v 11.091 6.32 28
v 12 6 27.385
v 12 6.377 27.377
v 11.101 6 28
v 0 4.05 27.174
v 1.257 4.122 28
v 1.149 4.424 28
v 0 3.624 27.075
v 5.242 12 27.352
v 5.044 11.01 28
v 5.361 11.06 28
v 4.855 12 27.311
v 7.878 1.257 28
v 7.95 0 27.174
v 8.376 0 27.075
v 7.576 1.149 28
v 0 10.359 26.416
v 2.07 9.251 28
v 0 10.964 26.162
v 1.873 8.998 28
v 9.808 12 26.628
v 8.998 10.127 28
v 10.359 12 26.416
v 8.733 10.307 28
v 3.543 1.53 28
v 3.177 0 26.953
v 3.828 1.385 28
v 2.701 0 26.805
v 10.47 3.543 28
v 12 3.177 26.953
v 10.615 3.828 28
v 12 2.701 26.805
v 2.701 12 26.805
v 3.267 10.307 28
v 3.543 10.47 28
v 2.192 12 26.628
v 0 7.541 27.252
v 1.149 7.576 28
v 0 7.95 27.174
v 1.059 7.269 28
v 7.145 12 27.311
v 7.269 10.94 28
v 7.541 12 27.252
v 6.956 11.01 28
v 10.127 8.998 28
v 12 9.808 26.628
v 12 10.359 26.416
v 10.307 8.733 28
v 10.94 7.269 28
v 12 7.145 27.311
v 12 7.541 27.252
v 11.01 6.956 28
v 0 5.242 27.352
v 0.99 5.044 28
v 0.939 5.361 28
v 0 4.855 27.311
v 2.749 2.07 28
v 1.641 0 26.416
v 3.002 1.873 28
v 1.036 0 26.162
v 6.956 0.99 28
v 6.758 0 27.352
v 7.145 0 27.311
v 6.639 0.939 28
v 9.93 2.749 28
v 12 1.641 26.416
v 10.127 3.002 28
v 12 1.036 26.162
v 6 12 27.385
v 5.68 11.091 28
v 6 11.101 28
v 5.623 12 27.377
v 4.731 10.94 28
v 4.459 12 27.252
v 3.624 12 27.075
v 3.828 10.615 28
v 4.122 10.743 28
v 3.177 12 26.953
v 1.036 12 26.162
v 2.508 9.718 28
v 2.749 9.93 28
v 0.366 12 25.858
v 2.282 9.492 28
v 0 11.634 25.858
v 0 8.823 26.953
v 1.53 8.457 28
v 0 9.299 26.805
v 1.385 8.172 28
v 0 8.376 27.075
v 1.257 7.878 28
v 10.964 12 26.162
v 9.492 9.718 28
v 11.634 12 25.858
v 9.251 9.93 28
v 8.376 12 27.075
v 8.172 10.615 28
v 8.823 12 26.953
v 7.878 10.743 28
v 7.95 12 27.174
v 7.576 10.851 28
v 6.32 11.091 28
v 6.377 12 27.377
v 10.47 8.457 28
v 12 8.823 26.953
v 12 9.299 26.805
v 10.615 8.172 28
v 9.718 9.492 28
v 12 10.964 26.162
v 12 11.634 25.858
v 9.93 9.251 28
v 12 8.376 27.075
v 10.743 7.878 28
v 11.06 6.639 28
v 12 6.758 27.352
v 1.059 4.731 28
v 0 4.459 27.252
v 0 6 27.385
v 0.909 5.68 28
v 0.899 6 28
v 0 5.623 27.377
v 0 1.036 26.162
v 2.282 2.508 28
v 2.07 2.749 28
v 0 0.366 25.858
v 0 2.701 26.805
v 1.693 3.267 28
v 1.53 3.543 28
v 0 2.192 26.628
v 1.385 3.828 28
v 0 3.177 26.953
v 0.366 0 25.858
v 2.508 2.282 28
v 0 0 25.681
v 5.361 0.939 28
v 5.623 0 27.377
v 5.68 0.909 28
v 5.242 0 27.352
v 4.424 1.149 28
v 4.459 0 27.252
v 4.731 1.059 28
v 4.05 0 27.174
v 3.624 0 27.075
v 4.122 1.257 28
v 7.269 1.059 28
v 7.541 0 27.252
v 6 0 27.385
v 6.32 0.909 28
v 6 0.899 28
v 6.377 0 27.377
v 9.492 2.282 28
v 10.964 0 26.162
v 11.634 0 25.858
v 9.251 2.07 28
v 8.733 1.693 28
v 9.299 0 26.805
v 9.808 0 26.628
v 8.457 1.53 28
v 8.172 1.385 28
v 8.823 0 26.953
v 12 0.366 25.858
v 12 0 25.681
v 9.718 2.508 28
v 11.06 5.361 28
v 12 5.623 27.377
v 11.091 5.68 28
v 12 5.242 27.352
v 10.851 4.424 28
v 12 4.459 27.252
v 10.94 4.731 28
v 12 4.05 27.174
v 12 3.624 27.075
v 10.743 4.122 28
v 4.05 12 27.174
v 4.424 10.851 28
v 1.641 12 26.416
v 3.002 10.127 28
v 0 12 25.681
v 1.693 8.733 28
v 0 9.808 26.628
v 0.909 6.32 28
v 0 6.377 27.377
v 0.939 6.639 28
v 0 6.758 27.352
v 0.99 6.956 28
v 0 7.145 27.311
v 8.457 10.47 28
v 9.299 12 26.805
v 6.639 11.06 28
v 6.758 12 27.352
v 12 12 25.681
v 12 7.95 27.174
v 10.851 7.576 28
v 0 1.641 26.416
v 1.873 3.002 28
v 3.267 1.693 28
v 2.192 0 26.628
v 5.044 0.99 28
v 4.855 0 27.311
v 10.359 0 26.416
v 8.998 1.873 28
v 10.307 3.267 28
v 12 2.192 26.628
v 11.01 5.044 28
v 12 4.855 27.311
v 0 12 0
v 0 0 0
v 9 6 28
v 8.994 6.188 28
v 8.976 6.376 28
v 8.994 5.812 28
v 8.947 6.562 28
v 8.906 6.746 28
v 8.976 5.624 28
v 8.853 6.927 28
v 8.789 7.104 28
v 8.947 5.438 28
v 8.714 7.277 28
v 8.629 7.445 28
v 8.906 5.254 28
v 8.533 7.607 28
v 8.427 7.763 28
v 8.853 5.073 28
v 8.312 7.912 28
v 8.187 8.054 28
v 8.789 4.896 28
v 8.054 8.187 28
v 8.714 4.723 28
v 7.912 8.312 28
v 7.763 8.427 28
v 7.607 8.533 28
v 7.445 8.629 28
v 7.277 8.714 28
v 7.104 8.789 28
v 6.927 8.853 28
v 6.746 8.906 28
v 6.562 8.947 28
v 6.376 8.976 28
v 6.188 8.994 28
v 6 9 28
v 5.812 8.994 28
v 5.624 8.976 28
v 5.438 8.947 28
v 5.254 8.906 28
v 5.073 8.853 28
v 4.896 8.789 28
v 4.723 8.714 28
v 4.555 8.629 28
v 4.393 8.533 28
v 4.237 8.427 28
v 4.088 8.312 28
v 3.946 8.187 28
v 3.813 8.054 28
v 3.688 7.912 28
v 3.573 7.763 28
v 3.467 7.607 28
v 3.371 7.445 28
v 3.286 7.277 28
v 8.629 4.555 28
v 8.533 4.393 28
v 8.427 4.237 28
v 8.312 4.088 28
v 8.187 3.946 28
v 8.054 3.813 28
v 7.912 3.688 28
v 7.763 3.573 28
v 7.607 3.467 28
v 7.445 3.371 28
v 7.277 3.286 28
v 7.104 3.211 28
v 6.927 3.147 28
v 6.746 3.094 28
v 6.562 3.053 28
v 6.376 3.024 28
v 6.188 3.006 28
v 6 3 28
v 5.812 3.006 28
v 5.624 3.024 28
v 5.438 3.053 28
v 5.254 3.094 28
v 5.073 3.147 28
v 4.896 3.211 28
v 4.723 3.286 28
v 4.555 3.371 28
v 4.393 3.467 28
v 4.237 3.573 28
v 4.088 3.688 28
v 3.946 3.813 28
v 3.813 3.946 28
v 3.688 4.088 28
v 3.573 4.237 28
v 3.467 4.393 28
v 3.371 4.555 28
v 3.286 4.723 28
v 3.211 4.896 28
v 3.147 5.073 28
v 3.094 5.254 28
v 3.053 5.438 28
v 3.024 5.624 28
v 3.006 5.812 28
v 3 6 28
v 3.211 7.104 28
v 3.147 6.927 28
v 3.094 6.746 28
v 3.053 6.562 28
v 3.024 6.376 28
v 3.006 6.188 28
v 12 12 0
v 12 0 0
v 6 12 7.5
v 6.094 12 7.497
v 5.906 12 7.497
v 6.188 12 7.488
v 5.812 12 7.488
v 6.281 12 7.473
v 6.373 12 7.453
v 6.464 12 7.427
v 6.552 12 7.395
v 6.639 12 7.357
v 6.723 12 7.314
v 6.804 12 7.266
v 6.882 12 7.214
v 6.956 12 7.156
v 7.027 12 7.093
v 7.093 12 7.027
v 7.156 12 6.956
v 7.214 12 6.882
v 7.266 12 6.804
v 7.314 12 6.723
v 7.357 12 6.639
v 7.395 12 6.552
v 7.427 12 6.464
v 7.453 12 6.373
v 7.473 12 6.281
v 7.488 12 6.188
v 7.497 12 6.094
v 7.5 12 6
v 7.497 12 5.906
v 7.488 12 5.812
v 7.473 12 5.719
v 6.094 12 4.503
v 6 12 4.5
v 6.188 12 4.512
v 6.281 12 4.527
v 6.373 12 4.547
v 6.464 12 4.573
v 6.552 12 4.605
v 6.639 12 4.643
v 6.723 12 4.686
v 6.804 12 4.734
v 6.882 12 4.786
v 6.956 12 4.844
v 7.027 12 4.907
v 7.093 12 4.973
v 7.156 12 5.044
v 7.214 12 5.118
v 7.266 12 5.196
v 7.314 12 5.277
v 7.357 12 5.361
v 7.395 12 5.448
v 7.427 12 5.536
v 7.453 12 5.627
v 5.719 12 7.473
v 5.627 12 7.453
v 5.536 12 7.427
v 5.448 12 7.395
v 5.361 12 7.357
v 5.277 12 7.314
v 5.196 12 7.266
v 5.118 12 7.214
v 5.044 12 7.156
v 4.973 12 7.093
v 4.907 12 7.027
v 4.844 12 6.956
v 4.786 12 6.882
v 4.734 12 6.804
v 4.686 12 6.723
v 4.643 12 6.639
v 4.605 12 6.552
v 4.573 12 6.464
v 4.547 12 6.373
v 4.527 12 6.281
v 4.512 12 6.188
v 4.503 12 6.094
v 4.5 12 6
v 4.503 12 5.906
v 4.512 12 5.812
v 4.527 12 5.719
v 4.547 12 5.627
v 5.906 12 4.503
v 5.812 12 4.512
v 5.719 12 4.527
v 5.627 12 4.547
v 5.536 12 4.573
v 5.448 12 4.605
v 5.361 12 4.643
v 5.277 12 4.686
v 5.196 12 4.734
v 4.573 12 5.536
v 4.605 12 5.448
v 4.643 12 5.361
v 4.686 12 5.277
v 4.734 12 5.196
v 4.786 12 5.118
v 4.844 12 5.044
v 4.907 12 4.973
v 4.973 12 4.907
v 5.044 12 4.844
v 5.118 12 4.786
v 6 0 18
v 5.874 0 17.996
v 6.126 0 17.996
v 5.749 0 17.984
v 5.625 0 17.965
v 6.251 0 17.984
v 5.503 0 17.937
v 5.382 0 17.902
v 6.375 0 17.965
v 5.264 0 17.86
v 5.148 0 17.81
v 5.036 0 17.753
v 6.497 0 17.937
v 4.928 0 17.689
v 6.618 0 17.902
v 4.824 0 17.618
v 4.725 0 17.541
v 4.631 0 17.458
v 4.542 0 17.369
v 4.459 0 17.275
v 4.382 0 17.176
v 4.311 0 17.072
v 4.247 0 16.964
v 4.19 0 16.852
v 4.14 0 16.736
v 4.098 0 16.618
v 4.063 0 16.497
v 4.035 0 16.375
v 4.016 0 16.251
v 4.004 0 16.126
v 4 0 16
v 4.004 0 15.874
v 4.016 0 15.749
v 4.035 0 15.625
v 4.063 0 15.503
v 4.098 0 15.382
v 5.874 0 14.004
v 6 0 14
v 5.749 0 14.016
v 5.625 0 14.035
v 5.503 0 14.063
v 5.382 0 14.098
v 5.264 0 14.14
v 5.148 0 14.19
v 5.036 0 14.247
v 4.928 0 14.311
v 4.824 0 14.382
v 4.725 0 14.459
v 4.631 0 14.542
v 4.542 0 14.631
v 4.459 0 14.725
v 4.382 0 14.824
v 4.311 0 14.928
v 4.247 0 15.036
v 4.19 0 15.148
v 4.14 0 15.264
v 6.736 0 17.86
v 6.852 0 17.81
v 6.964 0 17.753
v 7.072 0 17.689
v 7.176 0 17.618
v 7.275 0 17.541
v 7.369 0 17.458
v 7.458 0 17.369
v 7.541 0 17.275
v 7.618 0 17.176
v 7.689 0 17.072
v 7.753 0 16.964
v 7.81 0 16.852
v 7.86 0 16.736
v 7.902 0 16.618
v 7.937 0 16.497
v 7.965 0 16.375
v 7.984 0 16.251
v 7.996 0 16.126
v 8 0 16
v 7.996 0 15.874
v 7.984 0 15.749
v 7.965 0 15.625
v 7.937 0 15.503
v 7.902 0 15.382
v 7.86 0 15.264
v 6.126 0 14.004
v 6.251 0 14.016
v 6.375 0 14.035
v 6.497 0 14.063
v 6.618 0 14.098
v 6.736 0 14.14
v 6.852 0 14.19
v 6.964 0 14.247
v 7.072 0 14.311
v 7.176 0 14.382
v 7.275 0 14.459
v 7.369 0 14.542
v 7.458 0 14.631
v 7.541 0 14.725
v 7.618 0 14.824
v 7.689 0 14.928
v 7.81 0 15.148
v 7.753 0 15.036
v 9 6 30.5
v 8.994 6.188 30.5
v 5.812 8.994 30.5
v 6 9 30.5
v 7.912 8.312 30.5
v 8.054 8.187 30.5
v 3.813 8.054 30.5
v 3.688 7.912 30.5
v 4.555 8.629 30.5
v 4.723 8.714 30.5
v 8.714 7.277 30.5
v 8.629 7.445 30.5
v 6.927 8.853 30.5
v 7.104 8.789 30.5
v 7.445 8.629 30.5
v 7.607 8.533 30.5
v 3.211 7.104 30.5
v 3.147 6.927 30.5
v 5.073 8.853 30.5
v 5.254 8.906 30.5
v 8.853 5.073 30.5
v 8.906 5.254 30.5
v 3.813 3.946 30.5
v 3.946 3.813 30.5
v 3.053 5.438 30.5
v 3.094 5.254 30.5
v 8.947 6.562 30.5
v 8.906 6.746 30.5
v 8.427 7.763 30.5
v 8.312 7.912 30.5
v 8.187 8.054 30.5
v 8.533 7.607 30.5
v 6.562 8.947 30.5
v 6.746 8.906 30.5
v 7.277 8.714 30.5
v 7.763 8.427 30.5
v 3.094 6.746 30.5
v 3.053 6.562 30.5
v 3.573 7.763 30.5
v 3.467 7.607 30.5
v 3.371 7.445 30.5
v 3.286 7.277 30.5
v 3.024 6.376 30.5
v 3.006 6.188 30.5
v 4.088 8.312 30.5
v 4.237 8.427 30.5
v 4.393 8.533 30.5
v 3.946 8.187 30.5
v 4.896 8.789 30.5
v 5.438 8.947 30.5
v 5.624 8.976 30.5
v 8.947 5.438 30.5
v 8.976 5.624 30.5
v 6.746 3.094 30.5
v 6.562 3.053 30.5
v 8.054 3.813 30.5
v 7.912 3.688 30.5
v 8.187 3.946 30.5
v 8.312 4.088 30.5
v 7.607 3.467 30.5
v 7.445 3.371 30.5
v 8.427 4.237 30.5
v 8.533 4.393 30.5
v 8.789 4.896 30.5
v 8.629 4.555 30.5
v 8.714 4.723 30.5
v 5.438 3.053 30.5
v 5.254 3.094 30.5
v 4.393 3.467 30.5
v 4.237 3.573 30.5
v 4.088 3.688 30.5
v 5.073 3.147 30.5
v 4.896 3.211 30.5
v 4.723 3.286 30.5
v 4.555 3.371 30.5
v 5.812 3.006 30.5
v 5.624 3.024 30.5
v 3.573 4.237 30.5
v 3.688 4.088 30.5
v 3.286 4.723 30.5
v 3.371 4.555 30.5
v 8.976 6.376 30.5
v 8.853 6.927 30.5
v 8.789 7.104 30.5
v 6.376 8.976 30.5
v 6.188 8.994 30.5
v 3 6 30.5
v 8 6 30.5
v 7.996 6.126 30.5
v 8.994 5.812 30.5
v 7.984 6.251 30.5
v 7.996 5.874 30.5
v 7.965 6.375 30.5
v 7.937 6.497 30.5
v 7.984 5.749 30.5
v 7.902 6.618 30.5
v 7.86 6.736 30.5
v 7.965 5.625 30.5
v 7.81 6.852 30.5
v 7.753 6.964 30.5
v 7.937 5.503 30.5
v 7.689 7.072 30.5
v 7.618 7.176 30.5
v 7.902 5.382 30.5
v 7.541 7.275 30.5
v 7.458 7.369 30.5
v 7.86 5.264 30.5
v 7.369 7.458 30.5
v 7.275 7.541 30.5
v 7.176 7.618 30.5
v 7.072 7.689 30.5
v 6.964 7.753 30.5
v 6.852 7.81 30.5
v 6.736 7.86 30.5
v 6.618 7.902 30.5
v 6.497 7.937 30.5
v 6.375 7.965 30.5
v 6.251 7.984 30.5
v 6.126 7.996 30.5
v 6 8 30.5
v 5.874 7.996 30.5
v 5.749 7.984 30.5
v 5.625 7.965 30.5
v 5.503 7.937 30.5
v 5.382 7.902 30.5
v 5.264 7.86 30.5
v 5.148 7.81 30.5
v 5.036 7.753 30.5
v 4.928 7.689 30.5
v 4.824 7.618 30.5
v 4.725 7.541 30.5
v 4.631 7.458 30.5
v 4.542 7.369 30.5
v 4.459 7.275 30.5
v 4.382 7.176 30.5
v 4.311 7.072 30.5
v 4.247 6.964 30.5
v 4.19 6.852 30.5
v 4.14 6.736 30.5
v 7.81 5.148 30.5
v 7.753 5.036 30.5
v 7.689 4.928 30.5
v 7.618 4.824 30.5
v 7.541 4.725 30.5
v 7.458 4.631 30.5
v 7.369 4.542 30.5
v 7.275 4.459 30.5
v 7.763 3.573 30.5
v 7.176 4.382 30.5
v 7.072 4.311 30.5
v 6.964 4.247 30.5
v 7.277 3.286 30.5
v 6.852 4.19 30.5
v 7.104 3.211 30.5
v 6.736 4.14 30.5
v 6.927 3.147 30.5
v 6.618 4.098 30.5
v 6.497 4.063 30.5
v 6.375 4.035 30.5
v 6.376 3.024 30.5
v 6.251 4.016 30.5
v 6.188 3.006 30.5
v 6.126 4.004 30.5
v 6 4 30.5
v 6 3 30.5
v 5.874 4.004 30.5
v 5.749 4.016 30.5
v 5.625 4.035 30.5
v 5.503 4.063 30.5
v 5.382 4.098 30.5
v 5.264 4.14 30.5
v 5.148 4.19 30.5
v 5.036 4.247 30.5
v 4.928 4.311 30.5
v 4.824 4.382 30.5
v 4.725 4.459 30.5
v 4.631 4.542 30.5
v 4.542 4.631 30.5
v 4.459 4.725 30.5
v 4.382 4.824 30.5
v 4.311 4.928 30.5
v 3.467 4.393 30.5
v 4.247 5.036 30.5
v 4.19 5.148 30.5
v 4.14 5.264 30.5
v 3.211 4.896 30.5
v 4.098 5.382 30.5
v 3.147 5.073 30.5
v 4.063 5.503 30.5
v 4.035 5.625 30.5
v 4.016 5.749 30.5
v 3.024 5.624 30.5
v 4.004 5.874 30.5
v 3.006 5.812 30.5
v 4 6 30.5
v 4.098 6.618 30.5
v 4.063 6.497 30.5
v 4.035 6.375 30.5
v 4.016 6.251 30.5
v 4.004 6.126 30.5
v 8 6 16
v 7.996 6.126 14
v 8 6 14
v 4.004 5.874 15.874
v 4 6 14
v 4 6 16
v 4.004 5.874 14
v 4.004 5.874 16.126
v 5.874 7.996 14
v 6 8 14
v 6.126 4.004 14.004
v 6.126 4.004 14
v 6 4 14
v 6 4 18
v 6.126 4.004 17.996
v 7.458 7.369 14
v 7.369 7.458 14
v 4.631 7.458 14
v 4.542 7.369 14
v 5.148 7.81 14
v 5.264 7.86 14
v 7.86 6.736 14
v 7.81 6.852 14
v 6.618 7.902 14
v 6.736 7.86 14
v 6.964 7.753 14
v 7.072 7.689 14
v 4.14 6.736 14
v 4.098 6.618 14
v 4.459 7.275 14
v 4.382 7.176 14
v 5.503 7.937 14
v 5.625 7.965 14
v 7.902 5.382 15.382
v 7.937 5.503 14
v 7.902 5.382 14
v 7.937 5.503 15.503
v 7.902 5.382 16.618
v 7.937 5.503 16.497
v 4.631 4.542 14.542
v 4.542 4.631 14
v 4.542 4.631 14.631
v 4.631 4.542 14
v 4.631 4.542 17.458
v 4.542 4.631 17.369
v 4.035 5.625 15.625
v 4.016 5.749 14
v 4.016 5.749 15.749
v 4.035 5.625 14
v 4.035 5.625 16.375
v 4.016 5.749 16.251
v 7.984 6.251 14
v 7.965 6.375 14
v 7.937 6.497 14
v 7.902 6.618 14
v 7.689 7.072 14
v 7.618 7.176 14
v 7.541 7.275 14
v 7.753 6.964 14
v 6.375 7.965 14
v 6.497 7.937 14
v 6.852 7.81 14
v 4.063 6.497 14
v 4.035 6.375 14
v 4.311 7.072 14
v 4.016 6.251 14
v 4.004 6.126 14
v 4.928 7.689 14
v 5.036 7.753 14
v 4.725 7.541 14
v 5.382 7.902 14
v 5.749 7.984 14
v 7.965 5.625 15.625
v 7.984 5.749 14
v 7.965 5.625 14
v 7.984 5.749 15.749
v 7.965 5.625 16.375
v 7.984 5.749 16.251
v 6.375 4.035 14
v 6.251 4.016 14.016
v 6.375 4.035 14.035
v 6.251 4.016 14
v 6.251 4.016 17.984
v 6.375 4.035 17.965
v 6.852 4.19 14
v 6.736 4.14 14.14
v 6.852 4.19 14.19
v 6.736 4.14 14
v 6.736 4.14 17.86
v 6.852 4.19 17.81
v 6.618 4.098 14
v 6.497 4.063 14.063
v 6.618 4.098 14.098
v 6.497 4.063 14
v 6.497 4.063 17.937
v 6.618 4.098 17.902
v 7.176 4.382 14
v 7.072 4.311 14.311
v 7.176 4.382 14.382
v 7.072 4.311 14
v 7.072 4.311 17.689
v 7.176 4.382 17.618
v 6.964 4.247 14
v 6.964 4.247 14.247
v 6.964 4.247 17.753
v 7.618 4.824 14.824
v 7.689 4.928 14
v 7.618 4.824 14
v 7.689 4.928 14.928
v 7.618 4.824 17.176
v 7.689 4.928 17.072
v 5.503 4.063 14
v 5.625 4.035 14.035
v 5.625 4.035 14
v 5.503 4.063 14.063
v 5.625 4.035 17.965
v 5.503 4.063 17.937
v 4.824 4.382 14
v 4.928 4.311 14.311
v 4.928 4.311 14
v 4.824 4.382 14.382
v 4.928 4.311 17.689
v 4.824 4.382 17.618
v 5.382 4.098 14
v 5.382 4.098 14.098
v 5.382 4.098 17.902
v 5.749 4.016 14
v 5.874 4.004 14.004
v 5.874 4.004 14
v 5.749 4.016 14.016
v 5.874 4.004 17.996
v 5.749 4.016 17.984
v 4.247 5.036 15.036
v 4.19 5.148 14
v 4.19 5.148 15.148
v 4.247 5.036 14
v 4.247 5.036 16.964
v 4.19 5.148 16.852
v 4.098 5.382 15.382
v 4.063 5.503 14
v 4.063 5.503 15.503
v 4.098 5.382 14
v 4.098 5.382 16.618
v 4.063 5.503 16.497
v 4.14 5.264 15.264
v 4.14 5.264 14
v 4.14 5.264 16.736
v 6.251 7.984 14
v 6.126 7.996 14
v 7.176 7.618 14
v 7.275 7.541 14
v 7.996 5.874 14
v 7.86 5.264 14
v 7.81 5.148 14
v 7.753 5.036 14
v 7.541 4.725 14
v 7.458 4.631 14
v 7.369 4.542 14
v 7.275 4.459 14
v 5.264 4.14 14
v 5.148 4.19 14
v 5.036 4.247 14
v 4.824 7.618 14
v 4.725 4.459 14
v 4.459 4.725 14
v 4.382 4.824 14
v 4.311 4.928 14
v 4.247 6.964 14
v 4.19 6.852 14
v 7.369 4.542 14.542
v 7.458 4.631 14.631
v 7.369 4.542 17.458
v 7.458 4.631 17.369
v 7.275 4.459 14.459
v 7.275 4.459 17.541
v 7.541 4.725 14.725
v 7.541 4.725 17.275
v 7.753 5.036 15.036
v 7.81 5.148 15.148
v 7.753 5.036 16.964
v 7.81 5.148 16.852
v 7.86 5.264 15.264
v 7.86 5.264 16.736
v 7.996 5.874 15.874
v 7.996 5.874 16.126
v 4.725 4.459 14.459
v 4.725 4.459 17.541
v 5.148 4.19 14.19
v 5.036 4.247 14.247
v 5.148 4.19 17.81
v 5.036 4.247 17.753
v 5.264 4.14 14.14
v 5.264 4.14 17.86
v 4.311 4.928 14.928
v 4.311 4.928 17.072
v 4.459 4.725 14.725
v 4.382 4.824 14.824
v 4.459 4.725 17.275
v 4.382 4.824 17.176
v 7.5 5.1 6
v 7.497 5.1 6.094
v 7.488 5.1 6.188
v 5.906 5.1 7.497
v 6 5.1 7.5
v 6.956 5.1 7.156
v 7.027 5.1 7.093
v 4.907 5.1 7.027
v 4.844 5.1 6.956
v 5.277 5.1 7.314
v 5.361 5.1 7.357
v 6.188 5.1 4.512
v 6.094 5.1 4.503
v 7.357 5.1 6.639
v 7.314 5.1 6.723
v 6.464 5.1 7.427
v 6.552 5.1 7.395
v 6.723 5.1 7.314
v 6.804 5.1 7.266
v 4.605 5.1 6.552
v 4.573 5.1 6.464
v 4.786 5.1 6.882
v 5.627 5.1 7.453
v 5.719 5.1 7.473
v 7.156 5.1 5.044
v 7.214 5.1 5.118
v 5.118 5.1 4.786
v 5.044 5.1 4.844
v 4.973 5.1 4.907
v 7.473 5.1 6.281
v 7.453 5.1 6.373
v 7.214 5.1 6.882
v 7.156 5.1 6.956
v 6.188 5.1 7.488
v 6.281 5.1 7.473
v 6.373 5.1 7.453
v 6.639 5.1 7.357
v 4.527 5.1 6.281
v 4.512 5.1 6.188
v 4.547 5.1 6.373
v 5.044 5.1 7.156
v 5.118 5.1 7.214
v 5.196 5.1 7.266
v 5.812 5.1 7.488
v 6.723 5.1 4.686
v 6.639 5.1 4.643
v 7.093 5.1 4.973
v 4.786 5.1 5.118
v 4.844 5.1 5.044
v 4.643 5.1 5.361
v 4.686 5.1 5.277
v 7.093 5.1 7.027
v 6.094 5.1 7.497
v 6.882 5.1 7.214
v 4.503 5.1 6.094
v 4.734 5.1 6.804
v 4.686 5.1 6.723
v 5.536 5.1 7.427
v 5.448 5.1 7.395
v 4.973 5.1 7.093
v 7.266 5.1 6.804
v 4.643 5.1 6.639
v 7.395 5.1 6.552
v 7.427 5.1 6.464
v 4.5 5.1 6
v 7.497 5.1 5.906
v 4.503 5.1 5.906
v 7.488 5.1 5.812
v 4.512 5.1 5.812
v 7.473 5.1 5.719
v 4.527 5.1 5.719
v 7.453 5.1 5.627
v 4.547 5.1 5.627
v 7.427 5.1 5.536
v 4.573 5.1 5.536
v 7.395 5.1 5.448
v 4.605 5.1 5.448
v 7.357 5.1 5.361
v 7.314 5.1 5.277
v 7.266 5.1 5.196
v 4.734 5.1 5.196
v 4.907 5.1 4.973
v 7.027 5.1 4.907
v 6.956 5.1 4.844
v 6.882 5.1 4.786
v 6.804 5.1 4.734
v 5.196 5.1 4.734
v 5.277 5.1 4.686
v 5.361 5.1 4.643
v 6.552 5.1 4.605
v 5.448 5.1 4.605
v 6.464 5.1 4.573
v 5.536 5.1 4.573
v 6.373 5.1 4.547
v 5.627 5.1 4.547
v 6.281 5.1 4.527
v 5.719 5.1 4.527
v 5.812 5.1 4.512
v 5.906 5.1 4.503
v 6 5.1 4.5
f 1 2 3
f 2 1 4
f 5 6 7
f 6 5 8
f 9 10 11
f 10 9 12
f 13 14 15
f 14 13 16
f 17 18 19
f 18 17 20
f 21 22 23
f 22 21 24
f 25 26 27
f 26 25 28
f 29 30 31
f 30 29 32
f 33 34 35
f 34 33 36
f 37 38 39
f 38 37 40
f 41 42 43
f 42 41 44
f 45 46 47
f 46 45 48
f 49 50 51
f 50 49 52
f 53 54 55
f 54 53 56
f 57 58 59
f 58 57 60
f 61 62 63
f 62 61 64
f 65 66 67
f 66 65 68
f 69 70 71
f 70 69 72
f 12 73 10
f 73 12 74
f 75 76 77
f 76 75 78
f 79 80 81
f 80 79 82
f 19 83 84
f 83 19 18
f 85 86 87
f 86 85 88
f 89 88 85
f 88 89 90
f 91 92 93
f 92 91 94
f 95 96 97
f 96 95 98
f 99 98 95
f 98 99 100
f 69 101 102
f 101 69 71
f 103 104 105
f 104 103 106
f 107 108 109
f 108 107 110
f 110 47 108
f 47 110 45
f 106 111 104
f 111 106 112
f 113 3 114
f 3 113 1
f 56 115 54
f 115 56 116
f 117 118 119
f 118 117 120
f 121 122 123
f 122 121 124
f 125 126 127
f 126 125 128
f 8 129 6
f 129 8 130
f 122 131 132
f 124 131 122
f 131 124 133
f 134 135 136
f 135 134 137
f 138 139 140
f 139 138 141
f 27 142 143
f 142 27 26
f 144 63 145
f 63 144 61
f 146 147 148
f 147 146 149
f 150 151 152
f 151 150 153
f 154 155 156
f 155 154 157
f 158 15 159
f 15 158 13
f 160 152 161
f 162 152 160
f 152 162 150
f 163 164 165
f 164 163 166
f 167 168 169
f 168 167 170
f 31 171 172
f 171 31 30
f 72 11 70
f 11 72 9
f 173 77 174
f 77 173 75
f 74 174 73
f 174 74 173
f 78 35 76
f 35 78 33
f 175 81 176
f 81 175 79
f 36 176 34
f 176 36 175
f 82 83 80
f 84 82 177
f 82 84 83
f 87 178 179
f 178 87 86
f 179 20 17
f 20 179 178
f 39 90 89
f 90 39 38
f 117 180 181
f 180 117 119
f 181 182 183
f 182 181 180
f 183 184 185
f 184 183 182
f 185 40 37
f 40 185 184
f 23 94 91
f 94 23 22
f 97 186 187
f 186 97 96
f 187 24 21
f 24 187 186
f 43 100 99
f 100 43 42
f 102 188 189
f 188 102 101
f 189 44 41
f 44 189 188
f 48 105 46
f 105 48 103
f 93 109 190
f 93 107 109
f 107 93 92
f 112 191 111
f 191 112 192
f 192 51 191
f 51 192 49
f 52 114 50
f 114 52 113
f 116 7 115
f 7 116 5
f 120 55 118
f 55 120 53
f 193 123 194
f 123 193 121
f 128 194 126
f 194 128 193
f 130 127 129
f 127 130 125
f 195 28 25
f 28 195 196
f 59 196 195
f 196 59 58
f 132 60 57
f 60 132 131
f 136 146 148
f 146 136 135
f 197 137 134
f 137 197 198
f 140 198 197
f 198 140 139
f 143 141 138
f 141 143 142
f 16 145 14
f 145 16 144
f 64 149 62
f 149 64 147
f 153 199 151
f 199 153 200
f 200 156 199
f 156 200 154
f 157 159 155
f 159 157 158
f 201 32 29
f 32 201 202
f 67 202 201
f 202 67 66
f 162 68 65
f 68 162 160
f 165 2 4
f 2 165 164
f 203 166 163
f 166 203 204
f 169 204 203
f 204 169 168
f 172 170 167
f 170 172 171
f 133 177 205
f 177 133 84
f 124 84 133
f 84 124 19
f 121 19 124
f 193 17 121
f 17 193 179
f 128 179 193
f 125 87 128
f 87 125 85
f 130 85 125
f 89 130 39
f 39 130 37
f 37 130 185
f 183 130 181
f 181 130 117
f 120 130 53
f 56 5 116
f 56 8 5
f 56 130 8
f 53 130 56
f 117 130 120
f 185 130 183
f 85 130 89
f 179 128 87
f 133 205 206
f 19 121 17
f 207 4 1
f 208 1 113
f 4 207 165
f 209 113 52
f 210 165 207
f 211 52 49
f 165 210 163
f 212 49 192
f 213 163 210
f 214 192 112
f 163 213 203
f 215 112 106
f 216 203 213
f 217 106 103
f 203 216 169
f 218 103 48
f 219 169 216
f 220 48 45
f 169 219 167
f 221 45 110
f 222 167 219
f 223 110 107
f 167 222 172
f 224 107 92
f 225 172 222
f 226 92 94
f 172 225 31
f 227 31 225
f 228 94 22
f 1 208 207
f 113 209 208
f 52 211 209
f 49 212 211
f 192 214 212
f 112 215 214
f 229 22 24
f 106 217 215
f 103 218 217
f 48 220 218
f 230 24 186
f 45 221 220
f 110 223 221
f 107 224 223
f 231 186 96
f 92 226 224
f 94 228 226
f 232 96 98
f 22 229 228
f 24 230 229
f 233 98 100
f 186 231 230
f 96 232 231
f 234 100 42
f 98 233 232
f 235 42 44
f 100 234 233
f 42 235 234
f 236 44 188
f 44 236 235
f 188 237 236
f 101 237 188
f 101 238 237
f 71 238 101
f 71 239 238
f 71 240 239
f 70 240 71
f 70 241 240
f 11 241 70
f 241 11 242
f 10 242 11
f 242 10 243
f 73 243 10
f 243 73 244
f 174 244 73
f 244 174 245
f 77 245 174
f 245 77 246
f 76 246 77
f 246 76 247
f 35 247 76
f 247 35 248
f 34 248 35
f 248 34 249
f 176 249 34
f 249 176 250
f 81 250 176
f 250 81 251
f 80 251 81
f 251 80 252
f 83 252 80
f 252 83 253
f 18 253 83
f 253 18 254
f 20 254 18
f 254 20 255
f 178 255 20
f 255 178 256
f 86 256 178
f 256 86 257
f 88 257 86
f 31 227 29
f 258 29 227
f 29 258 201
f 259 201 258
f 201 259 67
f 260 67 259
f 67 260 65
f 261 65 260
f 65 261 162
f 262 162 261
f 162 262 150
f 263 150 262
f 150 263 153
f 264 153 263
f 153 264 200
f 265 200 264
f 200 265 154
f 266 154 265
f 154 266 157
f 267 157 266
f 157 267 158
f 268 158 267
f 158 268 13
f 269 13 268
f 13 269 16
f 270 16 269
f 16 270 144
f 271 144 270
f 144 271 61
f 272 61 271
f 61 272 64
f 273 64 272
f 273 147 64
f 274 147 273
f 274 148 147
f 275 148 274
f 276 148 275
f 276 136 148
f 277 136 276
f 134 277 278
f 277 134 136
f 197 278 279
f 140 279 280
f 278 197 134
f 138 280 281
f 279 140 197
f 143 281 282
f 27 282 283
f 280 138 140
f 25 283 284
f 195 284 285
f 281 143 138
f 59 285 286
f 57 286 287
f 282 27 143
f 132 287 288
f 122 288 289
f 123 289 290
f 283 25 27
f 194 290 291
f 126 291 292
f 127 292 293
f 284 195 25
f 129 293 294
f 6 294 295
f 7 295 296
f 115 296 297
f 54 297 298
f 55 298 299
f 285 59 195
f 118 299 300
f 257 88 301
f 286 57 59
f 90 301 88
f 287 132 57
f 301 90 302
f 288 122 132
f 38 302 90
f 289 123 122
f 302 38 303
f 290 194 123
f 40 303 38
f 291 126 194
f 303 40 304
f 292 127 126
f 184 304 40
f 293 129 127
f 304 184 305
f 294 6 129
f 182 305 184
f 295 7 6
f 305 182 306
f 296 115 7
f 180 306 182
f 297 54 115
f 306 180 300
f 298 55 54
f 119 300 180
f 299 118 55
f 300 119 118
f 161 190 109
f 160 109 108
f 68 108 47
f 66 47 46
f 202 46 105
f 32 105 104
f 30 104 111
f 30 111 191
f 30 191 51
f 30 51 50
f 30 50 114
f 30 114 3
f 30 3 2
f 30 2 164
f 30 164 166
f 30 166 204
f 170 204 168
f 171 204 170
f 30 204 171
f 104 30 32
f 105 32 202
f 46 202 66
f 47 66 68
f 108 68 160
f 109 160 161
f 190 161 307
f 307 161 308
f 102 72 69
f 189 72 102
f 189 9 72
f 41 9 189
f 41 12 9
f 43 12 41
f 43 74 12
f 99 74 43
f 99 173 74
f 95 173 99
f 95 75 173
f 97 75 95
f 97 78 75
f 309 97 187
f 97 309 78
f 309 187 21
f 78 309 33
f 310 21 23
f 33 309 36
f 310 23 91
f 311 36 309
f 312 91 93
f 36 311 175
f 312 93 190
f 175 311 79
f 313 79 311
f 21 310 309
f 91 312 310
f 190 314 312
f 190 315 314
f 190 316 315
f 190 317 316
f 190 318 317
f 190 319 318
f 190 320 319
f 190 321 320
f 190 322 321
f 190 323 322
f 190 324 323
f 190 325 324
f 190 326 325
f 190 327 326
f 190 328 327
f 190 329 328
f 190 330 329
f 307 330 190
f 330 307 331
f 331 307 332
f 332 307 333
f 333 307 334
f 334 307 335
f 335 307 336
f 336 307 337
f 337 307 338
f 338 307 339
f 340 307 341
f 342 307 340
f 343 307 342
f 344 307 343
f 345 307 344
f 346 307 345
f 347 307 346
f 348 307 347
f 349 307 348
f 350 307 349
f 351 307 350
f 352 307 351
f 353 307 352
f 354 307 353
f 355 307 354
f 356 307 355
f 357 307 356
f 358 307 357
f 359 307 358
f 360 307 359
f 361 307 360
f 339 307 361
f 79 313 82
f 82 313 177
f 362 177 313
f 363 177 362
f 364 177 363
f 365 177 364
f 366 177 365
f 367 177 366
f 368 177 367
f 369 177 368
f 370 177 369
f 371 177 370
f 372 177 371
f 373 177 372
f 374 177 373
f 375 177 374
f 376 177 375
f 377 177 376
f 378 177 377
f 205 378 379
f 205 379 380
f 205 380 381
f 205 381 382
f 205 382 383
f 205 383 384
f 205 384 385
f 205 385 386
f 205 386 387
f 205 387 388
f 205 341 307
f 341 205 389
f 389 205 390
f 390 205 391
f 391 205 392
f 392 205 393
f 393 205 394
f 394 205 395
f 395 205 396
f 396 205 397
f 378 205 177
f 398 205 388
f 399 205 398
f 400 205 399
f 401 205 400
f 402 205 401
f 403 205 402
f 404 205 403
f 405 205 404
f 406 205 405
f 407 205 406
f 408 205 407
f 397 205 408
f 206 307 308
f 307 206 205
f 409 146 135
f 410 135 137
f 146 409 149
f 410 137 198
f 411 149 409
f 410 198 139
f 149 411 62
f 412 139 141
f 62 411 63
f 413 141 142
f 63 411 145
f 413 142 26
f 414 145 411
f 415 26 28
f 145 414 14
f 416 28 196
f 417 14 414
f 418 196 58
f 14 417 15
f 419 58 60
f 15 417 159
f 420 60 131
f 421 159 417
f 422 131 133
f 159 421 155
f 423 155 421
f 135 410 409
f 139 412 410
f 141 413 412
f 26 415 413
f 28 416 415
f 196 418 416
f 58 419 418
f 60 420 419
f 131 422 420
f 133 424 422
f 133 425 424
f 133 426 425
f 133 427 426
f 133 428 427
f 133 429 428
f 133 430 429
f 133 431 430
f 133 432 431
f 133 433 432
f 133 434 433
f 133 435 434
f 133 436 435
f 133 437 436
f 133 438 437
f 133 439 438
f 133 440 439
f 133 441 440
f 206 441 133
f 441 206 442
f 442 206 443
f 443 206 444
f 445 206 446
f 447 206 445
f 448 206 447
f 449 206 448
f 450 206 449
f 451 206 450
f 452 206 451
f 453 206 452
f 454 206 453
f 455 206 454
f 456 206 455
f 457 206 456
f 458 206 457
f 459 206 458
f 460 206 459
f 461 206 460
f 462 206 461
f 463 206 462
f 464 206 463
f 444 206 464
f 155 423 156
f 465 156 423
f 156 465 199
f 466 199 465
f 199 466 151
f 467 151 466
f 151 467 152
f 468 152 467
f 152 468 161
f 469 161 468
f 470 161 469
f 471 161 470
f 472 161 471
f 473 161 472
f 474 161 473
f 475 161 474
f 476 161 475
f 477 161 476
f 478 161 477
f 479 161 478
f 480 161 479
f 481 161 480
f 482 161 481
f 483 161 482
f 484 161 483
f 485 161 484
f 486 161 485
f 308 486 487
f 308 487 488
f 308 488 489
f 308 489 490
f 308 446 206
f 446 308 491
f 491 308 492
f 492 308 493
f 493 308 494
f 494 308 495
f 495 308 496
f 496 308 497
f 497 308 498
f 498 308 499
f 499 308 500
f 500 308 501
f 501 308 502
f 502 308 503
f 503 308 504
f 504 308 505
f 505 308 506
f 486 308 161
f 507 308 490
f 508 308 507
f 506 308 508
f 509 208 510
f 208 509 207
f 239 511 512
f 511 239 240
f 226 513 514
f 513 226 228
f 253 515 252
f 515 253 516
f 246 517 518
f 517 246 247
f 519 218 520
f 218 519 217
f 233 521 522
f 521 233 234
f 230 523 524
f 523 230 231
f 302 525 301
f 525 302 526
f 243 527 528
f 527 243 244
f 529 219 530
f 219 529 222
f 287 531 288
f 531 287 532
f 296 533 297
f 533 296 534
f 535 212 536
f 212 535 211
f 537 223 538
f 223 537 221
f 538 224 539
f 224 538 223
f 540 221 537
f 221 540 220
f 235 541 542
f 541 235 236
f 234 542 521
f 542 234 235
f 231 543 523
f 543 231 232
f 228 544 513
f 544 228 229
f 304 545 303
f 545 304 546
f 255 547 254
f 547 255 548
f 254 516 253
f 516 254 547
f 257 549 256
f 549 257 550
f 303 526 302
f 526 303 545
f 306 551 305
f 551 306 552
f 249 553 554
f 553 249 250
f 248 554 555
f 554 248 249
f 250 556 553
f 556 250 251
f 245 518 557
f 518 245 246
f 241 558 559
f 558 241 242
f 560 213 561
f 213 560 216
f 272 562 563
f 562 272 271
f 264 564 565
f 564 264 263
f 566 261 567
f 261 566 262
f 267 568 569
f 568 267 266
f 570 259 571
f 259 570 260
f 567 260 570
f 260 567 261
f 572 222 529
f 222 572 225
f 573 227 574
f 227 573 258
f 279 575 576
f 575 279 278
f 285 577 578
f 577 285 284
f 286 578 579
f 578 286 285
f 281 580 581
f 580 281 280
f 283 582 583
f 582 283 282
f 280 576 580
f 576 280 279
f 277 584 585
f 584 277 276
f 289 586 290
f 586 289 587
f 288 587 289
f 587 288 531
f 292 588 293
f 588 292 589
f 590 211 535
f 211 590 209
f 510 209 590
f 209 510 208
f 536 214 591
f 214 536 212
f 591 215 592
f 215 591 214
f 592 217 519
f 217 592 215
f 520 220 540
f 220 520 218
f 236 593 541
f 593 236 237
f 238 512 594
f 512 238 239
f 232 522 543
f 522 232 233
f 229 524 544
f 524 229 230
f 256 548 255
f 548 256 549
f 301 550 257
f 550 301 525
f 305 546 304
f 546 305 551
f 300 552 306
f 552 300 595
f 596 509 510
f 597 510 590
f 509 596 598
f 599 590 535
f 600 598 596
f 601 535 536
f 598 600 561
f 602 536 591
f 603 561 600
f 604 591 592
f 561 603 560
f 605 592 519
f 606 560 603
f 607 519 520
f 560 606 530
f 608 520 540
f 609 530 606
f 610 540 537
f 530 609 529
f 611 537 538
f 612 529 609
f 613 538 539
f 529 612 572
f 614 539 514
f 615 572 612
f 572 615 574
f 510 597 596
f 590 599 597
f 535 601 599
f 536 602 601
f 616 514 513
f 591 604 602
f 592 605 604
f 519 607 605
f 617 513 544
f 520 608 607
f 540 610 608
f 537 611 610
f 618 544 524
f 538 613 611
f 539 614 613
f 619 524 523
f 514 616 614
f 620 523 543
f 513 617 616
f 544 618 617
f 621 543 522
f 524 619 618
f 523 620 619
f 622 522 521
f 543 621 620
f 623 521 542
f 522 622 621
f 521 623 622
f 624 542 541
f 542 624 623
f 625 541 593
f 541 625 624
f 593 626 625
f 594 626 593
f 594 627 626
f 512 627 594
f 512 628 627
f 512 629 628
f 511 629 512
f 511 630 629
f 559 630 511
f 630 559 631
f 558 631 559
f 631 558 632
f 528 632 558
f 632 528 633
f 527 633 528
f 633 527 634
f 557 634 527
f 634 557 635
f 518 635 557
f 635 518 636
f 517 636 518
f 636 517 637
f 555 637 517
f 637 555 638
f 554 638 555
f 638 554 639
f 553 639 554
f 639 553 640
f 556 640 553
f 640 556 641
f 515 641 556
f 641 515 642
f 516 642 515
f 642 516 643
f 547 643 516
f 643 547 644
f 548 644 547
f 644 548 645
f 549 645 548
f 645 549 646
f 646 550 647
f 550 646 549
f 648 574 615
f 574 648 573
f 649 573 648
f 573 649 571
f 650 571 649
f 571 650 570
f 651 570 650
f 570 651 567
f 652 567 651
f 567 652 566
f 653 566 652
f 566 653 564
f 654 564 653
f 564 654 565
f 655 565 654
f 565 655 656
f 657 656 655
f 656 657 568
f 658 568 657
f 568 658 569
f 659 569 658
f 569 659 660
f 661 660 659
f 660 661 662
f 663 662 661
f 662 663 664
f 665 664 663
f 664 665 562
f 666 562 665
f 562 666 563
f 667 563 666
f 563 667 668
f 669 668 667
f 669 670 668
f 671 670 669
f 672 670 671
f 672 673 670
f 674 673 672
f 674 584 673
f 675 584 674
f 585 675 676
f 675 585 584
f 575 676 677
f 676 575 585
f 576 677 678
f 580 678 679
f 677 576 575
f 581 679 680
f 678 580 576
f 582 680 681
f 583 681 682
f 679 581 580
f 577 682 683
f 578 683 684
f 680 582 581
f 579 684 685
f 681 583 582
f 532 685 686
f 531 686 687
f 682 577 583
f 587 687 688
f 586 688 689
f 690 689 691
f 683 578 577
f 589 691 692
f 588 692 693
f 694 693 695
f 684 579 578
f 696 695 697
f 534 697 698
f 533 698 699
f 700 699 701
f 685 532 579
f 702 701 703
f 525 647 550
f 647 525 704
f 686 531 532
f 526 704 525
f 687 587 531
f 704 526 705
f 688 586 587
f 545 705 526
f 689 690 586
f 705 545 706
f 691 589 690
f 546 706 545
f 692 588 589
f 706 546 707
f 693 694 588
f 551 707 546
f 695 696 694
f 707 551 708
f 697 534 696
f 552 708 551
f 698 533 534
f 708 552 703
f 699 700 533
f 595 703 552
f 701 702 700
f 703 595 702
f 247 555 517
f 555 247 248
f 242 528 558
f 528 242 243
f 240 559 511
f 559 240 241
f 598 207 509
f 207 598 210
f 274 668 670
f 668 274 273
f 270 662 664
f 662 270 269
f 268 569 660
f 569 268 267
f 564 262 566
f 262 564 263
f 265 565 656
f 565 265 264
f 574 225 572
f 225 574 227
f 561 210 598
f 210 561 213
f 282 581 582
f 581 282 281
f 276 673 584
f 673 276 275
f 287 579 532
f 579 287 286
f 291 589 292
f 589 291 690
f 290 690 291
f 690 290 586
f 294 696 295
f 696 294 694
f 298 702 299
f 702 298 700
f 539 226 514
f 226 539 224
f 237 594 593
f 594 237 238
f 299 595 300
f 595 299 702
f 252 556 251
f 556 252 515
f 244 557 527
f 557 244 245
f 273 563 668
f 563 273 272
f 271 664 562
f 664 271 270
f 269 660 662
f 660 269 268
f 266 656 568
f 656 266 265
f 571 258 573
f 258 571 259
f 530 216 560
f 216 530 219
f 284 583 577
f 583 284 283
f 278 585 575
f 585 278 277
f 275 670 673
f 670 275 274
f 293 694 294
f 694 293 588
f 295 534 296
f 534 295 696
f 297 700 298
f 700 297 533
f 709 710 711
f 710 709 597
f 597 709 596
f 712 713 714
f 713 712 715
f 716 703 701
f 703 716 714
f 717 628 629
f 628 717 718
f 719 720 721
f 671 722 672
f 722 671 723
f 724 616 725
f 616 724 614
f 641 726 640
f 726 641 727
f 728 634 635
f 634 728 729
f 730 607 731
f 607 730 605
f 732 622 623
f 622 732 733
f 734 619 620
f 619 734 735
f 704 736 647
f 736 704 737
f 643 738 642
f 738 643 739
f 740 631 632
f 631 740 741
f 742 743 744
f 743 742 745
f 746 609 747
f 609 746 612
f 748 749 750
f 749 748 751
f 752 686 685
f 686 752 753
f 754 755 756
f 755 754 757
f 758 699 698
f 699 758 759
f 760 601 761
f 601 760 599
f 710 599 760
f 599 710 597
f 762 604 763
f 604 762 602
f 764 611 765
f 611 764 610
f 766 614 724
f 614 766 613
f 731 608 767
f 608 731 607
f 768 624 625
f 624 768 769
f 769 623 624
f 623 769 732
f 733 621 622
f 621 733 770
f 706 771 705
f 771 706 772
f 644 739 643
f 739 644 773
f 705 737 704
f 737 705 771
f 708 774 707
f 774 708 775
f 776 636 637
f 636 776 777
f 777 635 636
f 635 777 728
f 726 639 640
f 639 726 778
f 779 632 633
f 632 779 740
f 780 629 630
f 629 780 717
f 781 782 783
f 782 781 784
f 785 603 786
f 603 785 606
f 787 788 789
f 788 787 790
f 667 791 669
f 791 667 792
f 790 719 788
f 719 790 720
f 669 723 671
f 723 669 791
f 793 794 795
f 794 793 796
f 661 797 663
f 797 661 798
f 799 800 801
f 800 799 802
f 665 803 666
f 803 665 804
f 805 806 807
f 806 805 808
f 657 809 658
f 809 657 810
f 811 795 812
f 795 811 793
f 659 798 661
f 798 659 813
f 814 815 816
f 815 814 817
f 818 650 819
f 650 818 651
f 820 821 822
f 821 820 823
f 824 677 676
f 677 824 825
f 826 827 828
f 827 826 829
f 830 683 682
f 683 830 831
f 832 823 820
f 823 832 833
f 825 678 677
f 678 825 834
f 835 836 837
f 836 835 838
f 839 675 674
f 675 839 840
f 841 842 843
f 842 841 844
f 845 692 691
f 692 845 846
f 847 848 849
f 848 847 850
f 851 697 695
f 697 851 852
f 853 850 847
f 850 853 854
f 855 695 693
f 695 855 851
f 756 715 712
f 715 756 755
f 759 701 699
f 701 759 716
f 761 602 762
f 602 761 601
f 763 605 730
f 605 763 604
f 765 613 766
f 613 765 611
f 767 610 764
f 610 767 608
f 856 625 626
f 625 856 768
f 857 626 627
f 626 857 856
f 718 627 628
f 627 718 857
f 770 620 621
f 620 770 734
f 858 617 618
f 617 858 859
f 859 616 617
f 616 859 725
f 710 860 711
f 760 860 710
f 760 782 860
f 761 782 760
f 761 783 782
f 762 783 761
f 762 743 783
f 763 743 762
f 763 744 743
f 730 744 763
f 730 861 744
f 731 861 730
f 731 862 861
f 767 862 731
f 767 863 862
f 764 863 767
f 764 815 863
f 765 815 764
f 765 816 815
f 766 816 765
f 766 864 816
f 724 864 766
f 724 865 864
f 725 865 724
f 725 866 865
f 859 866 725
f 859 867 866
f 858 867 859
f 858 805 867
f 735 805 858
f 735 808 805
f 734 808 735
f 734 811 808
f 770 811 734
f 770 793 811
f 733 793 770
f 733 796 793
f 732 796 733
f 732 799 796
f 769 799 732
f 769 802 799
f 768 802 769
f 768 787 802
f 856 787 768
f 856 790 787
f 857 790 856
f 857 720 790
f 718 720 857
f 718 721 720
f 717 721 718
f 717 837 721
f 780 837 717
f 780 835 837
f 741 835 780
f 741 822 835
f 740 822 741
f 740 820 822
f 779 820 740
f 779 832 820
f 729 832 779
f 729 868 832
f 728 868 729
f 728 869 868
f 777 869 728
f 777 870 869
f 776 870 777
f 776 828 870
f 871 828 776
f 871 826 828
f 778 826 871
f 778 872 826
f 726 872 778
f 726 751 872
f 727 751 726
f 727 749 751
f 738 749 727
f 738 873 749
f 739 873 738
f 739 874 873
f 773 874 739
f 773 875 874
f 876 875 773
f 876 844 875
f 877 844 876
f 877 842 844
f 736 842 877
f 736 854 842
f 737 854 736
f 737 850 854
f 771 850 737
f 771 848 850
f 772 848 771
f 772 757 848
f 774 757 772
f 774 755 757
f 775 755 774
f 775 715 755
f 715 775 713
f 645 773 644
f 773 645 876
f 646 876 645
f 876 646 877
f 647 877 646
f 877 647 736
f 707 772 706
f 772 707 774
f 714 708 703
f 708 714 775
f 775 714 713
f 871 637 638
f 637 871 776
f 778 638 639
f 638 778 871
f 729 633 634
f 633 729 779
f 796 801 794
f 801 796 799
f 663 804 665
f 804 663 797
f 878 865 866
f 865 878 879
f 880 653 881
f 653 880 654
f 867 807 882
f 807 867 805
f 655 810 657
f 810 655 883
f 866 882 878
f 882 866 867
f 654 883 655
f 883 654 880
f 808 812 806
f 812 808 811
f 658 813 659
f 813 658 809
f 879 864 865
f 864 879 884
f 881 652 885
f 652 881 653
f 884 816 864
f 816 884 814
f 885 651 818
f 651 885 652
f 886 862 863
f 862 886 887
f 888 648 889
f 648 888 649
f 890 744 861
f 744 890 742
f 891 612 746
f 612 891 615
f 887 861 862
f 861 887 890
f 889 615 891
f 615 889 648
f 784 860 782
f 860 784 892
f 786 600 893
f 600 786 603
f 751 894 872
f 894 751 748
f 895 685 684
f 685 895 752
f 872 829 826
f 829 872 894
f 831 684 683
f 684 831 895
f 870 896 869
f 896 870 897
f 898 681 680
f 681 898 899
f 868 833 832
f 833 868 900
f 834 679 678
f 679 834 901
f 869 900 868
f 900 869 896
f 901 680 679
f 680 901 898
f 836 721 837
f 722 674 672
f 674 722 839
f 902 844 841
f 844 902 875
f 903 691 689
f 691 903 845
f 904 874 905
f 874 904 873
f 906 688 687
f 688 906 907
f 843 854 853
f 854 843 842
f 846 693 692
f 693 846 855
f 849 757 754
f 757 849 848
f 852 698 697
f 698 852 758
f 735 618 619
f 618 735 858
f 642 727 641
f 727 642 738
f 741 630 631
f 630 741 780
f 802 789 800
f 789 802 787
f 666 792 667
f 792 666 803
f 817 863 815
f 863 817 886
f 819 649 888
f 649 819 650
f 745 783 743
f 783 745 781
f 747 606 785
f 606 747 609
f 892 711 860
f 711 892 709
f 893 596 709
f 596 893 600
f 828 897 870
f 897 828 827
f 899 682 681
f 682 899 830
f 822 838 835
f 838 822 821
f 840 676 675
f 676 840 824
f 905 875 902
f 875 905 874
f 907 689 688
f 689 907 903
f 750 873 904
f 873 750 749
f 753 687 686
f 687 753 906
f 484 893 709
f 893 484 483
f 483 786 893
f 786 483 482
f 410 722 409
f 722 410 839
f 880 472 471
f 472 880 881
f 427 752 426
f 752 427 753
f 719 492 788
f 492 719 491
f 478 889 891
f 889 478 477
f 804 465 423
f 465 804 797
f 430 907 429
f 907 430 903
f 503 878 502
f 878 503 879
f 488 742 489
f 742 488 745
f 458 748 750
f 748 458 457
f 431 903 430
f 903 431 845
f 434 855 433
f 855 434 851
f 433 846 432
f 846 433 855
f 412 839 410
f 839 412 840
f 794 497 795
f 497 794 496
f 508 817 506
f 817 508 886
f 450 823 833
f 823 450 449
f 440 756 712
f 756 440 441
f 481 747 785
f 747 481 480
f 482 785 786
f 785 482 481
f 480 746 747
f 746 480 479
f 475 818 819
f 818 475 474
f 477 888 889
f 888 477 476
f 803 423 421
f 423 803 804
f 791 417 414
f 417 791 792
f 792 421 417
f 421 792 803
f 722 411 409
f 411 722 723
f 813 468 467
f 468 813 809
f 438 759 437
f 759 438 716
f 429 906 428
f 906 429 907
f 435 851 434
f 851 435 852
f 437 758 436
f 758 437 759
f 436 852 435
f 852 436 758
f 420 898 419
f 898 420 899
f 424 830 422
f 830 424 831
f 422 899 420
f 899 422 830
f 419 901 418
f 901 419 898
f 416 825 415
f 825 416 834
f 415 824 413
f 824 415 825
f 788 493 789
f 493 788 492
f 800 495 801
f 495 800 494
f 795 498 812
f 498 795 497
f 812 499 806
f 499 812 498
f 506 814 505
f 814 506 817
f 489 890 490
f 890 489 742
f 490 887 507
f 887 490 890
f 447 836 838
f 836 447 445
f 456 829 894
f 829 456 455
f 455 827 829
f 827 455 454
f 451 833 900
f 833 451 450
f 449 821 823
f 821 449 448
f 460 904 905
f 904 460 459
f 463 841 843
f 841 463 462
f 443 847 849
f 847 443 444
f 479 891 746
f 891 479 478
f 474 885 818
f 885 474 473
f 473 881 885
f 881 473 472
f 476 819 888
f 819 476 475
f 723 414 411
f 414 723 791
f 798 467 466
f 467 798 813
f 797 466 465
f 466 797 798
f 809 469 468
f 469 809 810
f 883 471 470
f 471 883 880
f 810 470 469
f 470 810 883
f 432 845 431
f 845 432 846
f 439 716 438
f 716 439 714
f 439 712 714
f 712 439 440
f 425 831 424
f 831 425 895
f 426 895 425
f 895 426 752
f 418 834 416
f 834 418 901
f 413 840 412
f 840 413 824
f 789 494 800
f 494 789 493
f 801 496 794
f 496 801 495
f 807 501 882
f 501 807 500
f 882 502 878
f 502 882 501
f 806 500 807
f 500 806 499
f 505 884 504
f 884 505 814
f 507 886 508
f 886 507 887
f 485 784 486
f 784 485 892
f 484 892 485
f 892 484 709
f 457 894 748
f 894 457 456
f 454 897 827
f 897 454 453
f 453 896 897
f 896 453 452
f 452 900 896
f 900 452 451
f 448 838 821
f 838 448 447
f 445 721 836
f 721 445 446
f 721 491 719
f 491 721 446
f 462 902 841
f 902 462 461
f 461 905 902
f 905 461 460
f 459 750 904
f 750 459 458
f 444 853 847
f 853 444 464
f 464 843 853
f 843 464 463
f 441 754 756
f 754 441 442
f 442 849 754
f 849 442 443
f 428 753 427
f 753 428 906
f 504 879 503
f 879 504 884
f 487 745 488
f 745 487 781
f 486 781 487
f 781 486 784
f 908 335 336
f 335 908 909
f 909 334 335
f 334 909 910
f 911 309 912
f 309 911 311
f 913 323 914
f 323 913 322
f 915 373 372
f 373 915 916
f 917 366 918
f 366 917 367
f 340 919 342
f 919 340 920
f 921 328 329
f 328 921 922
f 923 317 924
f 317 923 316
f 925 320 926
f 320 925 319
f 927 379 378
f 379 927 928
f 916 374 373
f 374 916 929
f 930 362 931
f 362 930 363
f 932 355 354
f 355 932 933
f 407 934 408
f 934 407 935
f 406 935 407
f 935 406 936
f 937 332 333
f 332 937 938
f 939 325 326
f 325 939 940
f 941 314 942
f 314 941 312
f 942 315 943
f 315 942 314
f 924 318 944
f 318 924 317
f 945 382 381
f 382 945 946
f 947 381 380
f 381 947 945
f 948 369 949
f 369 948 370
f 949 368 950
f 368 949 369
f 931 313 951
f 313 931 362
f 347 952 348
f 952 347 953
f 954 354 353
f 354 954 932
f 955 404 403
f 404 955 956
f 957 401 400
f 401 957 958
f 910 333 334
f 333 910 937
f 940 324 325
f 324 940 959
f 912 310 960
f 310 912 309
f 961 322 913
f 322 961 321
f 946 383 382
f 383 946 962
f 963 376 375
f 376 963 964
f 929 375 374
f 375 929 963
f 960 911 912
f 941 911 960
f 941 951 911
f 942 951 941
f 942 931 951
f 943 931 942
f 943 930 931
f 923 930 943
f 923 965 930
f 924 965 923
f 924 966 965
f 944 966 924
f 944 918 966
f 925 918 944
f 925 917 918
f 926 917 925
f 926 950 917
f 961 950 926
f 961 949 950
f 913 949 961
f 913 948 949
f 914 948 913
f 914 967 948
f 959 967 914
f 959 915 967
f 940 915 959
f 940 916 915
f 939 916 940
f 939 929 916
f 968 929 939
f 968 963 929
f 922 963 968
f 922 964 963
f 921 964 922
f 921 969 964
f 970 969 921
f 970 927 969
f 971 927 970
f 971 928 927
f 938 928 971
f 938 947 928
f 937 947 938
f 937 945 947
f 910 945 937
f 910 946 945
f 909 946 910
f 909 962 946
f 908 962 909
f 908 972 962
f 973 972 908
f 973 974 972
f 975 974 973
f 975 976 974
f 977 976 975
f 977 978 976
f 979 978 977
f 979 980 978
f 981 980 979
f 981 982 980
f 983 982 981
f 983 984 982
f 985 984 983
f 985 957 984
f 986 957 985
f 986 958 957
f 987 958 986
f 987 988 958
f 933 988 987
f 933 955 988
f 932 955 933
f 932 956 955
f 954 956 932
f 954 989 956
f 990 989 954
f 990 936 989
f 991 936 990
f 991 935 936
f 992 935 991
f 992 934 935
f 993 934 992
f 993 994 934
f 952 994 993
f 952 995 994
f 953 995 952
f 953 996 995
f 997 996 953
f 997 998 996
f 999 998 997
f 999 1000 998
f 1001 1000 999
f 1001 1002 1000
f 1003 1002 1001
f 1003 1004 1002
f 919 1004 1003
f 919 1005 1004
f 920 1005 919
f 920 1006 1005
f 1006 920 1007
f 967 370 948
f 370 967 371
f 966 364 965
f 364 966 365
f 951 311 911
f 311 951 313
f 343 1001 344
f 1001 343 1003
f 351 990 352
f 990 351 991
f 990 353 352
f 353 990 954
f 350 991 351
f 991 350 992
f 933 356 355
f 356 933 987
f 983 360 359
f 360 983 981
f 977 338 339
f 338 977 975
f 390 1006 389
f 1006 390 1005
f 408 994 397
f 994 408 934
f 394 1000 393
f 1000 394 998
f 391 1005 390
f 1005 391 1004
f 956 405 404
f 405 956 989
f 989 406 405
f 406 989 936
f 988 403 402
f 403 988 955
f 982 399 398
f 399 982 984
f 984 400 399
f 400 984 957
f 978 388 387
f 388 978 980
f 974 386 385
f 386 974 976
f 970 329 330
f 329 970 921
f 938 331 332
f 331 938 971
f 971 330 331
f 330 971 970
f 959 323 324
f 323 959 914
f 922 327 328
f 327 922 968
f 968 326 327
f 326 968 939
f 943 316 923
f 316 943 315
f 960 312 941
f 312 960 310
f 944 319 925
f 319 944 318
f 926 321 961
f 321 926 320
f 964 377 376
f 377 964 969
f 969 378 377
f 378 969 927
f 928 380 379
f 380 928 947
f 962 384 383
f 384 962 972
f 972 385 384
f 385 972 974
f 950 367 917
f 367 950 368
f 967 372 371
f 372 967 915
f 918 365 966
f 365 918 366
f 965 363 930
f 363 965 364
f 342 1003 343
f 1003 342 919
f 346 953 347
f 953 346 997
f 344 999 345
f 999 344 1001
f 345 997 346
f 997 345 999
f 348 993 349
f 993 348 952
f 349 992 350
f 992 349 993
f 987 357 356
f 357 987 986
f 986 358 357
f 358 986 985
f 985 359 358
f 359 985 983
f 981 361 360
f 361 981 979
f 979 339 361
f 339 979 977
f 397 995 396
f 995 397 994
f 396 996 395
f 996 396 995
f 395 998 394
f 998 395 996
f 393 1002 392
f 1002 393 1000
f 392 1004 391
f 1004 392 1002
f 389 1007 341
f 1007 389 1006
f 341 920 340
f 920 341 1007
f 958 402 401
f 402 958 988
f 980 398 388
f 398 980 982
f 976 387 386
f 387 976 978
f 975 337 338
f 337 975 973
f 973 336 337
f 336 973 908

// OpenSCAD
$fn=100;

// Legris banjo elbow, guestimated :-)
// This is used on the tip of the wand
// Eyeballed from http://i961.photobucket.com/albums/ae97/Doug_Solo/2016%20Ghostbusters%20Venkman%20Hero%20Proton%20Pack/thrower_banjo_front_zpslvwurpa0.jpg (http://www.therpf.com/showthread.php?t=259249)

difference() {
    union() {
        core();
        translate([6,6,28])
        cylinder(d=6,h=2.5);
    }
    translate([6,6,14])
    cylinder(d=4,h=30);
    
    translate([6,6,16])
    rotate([90,0,0])
    cylinder(d=4,h=7);
    
    translate([6,12.1,6])
    rotate([90,0,0])
    cylinder(d=3,h=7);
}

module core() {
    difference() {
        cube([12,12,28]);
      
        // top chamfer thing, which is a hollowed out cone
        translate([6,6,25])
        difference() {
            // this cone isn't important, it's the outside shell
            cylinder(h=35/2,r1=45,r2=0);
            // this cone determines the shape of the chamfer
            translate([0,0,-0.01])
            cylinder(h=13/2,r1=19/2,r2=0);
        }
    }
}
